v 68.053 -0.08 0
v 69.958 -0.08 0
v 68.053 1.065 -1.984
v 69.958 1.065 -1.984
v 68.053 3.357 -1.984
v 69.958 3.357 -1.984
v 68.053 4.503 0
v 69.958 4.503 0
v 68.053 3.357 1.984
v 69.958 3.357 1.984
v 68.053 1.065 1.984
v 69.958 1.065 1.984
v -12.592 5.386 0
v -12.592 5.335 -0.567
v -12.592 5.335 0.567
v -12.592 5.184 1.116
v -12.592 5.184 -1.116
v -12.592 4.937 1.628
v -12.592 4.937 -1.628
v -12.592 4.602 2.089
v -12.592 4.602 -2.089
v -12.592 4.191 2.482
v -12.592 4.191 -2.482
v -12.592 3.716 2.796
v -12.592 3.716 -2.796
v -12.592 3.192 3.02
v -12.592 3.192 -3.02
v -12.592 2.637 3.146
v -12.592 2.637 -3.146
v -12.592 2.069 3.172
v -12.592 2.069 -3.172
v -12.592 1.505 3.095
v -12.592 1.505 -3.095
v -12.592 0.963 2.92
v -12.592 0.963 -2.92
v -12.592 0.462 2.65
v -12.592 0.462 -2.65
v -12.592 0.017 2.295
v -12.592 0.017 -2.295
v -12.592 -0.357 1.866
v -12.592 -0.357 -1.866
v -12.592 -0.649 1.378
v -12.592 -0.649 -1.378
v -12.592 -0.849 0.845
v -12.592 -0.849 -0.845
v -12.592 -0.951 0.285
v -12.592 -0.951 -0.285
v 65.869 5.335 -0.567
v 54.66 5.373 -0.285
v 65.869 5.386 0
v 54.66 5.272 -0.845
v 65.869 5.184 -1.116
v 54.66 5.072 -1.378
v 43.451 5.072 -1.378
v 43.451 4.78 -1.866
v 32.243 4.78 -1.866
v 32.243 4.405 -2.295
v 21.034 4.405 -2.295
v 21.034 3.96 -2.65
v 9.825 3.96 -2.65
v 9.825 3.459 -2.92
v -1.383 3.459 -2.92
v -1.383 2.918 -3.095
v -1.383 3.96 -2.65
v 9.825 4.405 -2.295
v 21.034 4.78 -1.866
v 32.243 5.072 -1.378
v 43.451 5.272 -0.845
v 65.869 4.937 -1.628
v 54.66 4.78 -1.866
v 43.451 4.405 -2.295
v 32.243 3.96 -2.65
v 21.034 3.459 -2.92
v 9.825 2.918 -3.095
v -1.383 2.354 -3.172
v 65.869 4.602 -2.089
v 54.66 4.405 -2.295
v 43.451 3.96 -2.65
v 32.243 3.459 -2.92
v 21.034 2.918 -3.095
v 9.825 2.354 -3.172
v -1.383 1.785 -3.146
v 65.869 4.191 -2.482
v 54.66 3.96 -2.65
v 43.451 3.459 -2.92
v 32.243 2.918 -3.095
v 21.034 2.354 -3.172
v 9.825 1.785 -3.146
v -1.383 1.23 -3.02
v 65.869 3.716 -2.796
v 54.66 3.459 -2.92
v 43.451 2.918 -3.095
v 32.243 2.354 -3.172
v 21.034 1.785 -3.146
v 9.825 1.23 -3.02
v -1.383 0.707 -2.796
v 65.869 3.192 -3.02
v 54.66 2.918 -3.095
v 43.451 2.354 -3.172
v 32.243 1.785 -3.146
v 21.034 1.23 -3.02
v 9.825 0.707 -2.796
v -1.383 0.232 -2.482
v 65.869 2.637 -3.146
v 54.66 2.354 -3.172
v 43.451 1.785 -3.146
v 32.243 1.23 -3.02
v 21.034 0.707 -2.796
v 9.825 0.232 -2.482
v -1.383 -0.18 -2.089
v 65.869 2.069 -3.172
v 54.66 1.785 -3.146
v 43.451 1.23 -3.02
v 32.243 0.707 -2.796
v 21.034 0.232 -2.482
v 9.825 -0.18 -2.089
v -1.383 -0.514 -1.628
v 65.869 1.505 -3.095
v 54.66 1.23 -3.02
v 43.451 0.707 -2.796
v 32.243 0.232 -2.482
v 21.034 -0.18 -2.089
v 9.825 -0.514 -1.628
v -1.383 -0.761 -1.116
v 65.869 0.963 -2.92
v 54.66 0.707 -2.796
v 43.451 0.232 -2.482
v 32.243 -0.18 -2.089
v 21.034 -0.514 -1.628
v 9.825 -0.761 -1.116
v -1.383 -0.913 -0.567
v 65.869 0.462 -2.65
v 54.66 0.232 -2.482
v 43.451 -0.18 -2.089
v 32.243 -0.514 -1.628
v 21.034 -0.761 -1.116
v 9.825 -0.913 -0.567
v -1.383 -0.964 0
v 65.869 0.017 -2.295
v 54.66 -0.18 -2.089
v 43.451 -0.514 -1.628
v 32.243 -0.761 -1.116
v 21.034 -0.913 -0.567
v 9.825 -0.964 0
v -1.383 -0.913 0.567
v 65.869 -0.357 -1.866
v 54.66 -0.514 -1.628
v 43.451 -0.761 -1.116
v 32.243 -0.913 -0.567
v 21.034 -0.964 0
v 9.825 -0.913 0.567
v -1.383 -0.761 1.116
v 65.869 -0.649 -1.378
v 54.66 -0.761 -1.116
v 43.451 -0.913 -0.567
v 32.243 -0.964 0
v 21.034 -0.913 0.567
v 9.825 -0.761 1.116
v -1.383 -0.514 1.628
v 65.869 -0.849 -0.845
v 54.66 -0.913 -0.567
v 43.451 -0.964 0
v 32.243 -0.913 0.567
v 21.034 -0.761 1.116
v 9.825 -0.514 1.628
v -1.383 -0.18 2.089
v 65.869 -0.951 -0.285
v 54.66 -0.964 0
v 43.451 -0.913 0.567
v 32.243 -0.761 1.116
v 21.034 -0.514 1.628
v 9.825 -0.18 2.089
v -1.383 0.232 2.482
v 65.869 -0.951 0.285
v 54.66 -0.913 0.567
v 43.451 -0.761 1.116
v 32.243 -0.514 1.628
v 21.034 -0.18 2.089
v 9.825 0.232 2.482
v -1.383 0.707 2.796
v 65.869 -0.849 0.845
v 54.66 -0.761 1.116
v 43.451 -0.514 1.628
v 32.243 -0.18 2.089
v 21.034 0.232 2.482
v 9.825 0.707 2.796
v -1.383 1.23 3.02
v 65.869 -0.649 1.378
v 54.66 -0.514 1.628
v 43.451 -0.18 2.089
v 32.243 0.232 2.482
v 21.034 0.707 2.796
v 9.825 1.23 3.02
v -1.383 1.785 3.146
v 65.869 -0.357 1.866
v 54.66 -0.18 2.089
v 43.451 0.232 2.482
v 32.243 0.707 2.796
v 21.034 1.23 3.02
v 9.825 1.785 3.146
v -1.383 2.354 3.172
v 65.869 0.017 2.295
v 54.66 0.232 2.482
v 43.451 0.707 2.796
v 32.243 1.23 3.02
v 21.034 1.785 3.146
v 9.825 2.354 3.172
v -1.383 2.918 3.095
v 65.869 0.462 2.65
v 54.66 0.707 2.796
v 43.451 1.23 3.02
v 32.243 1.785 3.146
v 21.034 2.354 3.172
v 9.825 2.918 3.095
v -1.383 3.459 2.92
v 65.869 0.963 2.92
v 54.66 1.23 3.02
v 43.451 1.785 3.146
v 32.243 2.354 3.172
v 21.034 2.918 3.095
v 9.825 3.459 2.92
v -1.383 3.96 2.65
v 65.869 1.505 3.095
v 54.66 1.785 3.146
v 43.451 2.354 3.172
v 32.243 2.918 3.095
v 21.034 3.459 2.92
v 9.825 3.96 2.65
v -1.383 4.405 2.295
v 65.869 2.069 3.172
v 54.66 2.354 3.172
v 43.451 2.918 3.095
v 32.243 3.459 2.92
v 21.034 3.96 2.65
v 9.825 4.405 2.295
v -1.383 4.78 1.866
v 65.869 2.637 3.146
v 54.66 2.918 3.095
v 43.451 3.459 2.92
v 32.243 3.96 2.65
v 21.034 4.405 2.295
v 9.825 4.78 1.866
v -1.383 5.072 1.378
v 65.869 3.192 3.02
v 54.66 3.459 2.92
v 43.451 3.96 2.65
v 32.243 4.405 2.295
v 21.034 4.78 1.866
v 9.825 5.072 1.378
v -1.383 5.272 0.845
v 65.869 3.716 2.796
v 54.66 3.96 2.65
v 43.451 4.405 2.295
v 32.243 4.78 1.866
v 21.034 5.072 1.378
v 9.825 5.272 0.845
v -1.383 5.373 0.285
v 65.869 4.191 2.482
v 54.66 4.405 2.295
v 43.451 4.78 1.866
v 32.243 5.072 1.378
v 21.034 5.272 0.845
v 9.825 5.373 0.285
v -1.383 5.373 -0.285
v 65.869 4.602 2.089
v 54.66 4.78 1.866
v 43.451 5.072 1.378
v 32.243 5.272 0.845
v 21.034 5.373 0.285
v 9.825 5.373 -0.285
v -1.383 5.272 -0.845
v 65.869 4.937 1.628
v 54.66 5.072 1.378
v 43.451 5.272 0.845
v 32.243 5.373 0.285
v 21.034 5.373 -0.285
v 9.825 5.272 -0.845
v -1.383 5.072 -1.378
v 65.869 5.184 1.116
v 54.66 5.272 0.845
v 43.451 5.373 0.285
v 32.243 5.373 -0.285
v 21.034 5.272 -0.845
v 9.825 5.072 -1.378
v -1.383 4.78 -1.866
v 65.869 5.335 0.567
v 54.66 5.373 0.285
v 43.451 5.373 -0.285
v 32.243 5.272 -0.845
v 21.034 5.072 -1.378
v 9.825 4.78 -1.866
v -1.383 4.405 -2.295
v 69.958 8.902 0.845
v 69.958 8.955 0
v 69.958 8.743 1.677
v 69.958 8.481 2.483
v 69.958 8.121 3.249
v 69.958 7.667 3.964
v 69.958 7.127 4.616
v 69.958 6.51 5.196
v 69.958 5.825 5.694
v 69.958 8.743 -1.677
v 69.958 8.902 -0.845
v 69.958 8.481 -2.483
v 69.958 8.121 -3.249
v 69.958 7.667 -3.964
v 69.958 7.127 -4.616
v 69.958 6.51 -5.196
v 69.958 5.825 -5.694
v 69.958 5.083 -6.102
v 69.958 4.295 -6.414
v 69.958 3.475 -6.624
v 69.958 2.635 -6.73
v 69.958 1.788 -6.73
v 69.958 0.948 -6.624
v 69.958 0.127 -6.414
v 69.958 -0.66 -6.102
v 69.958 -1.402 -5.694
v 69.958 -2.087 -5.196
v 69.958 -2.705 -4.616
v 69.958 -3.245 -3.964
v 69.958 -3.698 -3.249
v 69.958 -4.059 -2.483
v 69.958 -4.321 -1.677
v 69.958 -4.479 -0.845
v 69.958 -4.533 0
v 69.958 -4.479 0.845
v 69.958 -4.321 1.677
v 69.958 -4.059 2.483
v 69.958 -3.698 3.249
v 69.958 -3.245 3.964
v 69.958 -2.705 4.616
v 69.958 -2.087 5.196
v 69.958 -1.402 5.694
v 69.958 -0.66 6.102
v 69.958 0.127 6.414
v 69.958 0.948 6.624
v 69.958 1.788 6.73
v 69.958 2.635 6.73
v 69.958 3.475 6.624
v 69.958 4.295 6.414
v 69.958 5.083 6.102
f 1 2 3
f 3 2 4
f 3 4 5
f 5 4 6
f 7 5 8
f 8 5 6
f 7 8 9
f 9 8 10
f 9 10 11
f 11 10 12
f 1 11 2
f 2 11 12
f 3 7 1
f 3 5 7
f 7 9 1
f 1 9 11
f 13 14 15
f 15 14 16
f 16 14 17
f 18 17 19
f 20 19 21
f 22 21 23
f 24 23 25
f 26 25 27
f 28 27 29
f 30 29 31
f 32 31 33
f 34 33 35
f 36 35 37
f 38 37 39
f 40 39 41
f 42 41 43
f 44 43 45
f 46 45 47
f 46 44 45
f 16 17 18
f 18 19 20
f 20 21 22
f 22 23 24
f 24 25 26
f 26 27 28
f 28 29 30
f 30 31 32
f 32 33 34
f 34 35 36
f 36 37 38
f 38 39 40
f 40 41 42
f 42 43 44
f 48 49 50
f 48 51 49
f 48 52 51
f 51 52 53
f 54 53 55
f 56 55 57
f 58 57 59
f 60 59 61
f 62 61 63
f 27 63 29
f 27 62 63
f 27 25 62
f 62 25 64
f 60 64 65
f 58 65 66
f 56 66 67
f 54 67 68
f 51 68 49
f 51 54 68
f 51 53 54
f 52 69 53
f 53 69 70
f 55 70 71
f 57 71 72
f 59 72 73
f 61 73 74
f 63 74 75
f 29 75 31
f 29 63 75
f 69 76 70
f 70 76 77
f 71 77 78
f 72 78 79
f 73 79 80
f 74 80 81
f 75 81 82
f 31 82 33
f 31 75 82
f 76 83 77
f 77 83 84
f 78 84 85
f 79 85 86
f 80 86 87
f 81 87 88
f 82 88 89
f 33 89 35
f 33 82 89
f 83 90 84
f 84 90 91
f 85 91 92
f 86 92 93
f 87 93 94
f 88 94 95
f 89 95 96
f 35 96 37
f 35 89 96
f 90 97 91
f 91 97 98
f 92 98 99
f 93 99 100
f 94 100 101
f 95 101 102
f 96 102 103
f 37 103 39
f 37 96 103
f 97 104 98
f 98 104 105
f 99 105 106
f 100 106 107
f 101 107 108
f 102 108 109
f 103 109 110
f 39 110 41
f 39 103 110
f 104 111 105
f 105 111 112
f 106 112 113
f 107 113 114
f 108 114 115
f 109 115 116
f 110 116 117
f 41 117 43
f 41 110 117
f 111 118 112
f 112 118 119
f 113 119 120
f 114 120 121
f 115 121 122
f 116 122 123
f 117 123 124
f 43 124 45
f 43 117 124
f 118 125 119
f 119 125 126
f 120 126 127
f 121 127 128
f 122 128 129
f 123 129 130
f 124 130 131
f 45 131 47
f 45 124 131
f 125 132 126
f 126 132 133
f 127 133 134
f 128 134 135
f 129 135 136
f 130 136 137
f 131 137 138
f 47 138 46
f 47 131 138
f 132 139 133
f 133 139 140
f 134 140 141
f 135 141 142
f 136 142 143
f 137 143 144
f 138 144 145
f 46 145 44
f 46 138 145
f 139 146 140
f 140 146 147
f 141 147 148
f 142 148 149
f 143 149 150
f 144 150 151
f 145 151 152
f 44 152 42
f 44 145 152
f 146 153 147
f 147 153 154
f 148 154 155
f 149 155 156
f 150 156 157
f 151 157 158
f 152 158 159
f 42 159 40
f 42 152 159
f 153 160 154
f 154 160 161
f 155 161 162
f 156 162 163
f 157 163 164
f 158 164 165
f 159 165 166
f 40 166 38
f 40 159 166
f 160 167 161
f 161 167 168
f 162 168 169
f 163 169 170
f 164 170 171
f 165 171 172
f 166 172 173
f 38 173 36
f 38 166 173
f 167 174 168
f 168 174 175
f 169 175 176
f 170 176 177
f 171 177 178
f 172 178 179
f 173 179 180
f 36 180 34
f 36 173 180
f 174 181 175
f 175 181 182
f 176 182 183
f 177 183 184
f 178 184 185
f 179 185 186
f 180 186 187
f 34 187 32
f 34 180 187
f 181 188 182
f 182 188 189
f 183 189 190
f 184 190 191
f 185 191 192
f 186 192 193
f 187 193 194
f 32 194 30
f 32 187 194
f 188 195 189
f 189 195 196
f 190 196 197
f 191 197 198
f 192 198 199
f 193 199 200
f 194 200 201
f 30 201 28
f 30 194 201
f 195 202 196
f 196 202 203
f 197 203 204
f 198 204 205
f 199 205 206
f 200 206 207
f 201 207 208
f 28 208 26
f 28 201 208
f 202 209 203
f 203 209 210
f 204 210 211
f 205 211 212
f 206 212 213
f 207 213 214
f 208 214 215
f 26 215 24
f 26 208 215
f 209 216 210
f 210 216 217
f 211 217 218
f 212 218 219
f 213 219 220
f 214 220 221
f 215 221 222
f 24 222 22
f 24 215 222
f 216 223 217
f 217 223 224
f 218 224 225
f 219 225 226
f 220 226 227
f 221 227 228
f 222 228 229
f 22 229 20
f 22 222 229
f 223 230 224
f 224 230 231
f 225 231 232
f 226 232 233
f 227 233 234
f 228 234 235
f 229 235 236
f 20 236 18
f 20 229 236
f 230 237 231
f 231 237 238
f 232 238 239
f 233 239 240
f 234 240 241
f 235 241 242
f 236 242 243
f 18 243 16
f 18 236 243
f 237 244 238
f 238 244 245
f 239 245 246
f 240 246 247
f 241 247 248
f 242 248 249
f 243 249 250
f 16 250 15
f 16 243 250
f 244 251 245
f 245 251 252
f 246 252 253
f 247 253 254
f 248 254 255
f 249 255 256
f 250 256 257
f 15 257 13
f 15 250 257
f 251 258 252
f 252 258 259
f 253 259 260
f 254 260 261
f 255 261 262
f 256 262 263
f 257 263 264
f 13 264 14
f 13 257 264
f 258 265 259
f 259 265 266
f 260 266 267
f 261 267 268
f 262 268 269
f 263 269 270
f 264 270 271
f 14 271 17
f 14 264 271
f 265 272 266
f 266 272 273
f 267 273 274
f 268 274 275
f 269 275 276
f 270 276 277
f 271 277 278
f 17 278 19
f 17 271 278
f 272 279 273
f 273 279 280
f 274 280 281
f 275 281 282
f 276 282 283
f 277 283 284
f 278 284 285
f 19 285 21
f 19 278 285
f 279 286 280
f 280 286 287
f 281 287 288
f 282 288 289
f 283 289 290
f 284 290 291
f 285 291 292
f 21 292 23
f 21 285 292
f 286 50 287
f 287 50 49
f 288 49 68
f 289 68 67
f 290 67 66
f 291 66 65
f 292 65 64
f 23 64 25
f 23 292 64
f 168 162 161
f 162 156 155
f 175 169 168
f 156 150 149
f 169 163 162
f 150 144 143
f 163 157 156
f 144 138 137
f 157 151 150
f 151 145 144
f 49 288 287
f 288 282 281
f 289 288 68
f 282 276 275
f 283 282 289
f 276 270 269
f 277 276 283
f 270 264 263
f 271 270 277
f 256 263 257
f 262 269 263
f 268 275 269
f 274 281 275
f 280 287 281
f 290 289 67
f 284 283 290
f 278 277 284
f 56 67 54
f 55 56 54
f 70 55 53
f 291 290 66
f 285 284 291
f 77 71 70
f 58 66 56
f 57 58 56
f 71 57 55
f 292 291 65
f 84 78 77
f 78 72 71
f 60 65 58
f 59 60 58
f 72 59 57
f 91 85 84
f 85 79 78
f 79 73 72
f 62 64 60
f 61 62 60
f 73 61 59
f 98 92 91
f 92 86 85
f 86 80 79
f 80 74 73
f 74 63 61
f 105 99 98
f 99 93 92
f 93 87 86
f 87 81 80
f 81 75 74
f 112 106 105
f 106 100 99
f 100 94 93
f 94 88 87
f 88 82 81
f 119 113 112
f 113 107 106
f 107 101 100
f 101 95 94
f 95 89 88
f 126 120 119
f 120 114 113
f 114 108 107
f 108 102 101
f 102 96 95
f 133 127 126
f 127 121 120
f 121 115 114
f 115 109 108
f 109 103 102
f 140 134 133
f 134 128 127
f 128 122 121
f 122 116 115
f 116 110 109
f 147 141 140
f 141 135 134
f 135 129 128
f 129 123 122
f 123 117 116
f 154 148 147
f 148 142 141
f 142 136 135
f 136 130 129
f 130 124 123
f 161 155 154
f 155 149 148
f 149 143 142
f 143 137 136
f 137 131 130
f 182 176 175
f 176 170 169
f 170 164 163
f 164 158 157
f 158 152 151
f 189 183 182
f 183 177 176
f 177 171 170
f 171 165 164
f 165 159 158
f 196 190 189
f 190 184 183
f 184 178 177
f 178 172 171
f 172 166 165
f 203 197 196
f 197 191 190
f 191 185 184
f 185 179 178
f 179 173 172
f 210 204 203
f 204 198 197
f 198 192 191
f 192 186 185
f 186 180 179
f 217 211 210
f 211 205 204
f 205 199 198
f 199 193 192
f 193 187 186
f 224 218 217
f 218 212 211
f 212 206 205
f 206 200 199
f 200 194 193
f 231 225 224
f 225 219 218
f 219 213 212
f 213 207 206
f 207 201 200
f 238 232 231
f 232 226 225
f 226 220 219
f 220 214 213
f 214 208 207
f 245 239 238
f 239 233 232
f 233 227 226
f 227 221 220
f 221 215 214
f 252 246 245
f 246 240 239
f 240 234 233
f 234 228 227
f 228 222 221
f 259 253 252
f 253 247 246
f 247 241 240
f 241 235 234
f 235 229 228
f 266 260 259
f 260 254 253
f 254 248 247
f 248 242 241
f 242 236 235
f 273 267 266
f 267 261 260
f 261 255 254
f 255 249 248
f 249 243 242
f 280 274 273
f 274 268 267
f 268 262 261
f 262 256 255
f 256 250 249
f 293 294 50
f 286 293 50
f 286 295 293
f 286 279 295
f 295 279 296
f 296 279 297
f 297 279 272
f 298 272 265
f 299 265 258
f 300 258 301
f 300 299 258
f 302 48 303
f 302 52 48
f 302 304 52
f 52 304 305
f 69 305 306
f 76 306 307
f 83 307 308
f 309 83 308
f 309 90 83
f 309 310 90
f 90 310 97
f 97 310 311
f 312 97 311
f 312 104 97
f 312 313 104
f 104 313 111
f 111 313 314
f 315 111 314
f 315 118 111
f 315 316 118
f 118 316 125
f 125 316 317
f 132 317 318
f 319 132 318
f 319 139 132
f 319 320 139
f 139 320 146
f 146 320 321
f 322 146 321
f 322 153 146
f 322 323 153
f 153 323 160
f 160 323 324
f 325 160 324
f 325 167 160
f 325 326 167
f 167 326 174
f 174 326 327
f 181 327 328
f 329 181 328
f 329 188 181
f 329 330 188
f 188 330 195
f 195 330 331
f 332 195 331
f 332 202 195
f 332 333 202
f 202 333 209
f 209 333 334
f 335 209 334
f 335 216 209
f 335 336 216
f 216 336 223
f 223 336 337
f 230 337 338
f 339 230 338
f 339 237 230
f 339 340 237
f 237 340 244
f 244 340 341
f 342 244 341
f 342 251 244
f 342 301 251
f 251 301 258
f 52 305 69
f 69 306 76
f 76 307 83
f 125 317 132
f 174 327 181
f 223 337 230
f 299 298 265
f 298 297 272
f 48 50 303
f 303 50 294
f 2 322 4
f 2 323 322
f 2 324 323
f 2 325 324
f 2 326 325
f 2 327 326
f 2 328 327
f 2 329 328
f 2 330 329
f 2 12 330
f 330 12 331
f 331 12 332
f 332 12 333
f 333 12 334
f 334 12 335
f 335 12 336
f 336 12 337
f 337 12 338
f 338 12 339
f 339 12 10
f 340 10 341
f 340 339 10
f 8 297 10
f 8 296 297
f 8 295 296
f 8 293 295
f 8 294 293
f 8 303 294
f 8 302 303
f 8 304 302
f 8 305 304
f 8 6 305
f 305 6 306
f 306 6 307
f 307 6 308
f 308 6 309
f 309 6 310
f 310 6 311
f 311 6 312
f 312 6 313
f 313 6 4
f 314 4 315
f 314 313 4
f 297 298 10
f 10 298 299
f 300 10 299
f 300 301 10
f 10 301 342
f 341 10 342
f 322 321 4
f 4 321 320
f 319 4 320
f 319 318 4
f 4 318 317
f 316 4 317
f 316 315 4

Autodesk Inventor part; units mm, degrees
ref_plane "YZ Plane" through (0, 0, 0) normal (1, 0, 0) x (0, 1, 0)
ref_plane "XZ Plane" through (0, 0, 0) normal (0, 1, 0) x (-1, 0, 0)
ref_plane "XY Plane" through (0, 0, 0) normal (0, 0, 1) x (1, 0, 0)
sketch "Sketch1" plane through (0, 0, 0) normal (0, 0, 1) x (1, 0, 0)
  line L0 (-12.5919, 2.2112) -> (69.9581, 2.2112)
  line L1 (69.9581, 2.2112) -> (69.9581, 8.9549)
  line L2 (69.9581, 8.9549) -> (65.8687, 5.3862)
  line L3 (65.8687, 5.3862) -> (-12.5919, 5.3862)
  line L4 (-12.5919, 5.3862) -> (-12.5919, 2.2112)
  dimension "d0" = 3.175
  dimension "d2" = 4.0894
  dimension "d3" = 6.7437
  dimension "d19" = 82.55
revolve "Revolution1" add sketch "Sketch1" angle 360 about axis through (-12.5919, 2.2112, 0) along (1, 0, 0)
thread "Thread1" size "1/4-20 UNC" class "2A" standard "ANSI Unified Screw Threads" length 25.4
sketch "Sketch2" plane through (69.9581, 2.2112, 0) normal (1, 0, 0) x (0, 0, -1)
  circle A0 centre (0, 0) radius 6.7437 projected
  line L0 (0, -2.2914) -> (-1.9844, -1.1457)
  line L1 (-1.9844, -1.1457) -> (-1.9844, 1.1457)
  line L2 (-1.9844, 1.1457) -> (0, 2.2914)
  line L3 (0, 2.2914) -> (1.9844, 1.1457)
  line L4 (1.9844, 1.1457) -> (1.9844, -1.1457)
  line L5 (1.9844, -1.1457) -> (0, -2.2914)
  dimension "d16" = 3.9688
extrude "Extrusion1" cut sketch "Sketch2" against normal blind 1.905 contours L0 L1 L2 L3 L4 L5
properties part number "HW-00073"
